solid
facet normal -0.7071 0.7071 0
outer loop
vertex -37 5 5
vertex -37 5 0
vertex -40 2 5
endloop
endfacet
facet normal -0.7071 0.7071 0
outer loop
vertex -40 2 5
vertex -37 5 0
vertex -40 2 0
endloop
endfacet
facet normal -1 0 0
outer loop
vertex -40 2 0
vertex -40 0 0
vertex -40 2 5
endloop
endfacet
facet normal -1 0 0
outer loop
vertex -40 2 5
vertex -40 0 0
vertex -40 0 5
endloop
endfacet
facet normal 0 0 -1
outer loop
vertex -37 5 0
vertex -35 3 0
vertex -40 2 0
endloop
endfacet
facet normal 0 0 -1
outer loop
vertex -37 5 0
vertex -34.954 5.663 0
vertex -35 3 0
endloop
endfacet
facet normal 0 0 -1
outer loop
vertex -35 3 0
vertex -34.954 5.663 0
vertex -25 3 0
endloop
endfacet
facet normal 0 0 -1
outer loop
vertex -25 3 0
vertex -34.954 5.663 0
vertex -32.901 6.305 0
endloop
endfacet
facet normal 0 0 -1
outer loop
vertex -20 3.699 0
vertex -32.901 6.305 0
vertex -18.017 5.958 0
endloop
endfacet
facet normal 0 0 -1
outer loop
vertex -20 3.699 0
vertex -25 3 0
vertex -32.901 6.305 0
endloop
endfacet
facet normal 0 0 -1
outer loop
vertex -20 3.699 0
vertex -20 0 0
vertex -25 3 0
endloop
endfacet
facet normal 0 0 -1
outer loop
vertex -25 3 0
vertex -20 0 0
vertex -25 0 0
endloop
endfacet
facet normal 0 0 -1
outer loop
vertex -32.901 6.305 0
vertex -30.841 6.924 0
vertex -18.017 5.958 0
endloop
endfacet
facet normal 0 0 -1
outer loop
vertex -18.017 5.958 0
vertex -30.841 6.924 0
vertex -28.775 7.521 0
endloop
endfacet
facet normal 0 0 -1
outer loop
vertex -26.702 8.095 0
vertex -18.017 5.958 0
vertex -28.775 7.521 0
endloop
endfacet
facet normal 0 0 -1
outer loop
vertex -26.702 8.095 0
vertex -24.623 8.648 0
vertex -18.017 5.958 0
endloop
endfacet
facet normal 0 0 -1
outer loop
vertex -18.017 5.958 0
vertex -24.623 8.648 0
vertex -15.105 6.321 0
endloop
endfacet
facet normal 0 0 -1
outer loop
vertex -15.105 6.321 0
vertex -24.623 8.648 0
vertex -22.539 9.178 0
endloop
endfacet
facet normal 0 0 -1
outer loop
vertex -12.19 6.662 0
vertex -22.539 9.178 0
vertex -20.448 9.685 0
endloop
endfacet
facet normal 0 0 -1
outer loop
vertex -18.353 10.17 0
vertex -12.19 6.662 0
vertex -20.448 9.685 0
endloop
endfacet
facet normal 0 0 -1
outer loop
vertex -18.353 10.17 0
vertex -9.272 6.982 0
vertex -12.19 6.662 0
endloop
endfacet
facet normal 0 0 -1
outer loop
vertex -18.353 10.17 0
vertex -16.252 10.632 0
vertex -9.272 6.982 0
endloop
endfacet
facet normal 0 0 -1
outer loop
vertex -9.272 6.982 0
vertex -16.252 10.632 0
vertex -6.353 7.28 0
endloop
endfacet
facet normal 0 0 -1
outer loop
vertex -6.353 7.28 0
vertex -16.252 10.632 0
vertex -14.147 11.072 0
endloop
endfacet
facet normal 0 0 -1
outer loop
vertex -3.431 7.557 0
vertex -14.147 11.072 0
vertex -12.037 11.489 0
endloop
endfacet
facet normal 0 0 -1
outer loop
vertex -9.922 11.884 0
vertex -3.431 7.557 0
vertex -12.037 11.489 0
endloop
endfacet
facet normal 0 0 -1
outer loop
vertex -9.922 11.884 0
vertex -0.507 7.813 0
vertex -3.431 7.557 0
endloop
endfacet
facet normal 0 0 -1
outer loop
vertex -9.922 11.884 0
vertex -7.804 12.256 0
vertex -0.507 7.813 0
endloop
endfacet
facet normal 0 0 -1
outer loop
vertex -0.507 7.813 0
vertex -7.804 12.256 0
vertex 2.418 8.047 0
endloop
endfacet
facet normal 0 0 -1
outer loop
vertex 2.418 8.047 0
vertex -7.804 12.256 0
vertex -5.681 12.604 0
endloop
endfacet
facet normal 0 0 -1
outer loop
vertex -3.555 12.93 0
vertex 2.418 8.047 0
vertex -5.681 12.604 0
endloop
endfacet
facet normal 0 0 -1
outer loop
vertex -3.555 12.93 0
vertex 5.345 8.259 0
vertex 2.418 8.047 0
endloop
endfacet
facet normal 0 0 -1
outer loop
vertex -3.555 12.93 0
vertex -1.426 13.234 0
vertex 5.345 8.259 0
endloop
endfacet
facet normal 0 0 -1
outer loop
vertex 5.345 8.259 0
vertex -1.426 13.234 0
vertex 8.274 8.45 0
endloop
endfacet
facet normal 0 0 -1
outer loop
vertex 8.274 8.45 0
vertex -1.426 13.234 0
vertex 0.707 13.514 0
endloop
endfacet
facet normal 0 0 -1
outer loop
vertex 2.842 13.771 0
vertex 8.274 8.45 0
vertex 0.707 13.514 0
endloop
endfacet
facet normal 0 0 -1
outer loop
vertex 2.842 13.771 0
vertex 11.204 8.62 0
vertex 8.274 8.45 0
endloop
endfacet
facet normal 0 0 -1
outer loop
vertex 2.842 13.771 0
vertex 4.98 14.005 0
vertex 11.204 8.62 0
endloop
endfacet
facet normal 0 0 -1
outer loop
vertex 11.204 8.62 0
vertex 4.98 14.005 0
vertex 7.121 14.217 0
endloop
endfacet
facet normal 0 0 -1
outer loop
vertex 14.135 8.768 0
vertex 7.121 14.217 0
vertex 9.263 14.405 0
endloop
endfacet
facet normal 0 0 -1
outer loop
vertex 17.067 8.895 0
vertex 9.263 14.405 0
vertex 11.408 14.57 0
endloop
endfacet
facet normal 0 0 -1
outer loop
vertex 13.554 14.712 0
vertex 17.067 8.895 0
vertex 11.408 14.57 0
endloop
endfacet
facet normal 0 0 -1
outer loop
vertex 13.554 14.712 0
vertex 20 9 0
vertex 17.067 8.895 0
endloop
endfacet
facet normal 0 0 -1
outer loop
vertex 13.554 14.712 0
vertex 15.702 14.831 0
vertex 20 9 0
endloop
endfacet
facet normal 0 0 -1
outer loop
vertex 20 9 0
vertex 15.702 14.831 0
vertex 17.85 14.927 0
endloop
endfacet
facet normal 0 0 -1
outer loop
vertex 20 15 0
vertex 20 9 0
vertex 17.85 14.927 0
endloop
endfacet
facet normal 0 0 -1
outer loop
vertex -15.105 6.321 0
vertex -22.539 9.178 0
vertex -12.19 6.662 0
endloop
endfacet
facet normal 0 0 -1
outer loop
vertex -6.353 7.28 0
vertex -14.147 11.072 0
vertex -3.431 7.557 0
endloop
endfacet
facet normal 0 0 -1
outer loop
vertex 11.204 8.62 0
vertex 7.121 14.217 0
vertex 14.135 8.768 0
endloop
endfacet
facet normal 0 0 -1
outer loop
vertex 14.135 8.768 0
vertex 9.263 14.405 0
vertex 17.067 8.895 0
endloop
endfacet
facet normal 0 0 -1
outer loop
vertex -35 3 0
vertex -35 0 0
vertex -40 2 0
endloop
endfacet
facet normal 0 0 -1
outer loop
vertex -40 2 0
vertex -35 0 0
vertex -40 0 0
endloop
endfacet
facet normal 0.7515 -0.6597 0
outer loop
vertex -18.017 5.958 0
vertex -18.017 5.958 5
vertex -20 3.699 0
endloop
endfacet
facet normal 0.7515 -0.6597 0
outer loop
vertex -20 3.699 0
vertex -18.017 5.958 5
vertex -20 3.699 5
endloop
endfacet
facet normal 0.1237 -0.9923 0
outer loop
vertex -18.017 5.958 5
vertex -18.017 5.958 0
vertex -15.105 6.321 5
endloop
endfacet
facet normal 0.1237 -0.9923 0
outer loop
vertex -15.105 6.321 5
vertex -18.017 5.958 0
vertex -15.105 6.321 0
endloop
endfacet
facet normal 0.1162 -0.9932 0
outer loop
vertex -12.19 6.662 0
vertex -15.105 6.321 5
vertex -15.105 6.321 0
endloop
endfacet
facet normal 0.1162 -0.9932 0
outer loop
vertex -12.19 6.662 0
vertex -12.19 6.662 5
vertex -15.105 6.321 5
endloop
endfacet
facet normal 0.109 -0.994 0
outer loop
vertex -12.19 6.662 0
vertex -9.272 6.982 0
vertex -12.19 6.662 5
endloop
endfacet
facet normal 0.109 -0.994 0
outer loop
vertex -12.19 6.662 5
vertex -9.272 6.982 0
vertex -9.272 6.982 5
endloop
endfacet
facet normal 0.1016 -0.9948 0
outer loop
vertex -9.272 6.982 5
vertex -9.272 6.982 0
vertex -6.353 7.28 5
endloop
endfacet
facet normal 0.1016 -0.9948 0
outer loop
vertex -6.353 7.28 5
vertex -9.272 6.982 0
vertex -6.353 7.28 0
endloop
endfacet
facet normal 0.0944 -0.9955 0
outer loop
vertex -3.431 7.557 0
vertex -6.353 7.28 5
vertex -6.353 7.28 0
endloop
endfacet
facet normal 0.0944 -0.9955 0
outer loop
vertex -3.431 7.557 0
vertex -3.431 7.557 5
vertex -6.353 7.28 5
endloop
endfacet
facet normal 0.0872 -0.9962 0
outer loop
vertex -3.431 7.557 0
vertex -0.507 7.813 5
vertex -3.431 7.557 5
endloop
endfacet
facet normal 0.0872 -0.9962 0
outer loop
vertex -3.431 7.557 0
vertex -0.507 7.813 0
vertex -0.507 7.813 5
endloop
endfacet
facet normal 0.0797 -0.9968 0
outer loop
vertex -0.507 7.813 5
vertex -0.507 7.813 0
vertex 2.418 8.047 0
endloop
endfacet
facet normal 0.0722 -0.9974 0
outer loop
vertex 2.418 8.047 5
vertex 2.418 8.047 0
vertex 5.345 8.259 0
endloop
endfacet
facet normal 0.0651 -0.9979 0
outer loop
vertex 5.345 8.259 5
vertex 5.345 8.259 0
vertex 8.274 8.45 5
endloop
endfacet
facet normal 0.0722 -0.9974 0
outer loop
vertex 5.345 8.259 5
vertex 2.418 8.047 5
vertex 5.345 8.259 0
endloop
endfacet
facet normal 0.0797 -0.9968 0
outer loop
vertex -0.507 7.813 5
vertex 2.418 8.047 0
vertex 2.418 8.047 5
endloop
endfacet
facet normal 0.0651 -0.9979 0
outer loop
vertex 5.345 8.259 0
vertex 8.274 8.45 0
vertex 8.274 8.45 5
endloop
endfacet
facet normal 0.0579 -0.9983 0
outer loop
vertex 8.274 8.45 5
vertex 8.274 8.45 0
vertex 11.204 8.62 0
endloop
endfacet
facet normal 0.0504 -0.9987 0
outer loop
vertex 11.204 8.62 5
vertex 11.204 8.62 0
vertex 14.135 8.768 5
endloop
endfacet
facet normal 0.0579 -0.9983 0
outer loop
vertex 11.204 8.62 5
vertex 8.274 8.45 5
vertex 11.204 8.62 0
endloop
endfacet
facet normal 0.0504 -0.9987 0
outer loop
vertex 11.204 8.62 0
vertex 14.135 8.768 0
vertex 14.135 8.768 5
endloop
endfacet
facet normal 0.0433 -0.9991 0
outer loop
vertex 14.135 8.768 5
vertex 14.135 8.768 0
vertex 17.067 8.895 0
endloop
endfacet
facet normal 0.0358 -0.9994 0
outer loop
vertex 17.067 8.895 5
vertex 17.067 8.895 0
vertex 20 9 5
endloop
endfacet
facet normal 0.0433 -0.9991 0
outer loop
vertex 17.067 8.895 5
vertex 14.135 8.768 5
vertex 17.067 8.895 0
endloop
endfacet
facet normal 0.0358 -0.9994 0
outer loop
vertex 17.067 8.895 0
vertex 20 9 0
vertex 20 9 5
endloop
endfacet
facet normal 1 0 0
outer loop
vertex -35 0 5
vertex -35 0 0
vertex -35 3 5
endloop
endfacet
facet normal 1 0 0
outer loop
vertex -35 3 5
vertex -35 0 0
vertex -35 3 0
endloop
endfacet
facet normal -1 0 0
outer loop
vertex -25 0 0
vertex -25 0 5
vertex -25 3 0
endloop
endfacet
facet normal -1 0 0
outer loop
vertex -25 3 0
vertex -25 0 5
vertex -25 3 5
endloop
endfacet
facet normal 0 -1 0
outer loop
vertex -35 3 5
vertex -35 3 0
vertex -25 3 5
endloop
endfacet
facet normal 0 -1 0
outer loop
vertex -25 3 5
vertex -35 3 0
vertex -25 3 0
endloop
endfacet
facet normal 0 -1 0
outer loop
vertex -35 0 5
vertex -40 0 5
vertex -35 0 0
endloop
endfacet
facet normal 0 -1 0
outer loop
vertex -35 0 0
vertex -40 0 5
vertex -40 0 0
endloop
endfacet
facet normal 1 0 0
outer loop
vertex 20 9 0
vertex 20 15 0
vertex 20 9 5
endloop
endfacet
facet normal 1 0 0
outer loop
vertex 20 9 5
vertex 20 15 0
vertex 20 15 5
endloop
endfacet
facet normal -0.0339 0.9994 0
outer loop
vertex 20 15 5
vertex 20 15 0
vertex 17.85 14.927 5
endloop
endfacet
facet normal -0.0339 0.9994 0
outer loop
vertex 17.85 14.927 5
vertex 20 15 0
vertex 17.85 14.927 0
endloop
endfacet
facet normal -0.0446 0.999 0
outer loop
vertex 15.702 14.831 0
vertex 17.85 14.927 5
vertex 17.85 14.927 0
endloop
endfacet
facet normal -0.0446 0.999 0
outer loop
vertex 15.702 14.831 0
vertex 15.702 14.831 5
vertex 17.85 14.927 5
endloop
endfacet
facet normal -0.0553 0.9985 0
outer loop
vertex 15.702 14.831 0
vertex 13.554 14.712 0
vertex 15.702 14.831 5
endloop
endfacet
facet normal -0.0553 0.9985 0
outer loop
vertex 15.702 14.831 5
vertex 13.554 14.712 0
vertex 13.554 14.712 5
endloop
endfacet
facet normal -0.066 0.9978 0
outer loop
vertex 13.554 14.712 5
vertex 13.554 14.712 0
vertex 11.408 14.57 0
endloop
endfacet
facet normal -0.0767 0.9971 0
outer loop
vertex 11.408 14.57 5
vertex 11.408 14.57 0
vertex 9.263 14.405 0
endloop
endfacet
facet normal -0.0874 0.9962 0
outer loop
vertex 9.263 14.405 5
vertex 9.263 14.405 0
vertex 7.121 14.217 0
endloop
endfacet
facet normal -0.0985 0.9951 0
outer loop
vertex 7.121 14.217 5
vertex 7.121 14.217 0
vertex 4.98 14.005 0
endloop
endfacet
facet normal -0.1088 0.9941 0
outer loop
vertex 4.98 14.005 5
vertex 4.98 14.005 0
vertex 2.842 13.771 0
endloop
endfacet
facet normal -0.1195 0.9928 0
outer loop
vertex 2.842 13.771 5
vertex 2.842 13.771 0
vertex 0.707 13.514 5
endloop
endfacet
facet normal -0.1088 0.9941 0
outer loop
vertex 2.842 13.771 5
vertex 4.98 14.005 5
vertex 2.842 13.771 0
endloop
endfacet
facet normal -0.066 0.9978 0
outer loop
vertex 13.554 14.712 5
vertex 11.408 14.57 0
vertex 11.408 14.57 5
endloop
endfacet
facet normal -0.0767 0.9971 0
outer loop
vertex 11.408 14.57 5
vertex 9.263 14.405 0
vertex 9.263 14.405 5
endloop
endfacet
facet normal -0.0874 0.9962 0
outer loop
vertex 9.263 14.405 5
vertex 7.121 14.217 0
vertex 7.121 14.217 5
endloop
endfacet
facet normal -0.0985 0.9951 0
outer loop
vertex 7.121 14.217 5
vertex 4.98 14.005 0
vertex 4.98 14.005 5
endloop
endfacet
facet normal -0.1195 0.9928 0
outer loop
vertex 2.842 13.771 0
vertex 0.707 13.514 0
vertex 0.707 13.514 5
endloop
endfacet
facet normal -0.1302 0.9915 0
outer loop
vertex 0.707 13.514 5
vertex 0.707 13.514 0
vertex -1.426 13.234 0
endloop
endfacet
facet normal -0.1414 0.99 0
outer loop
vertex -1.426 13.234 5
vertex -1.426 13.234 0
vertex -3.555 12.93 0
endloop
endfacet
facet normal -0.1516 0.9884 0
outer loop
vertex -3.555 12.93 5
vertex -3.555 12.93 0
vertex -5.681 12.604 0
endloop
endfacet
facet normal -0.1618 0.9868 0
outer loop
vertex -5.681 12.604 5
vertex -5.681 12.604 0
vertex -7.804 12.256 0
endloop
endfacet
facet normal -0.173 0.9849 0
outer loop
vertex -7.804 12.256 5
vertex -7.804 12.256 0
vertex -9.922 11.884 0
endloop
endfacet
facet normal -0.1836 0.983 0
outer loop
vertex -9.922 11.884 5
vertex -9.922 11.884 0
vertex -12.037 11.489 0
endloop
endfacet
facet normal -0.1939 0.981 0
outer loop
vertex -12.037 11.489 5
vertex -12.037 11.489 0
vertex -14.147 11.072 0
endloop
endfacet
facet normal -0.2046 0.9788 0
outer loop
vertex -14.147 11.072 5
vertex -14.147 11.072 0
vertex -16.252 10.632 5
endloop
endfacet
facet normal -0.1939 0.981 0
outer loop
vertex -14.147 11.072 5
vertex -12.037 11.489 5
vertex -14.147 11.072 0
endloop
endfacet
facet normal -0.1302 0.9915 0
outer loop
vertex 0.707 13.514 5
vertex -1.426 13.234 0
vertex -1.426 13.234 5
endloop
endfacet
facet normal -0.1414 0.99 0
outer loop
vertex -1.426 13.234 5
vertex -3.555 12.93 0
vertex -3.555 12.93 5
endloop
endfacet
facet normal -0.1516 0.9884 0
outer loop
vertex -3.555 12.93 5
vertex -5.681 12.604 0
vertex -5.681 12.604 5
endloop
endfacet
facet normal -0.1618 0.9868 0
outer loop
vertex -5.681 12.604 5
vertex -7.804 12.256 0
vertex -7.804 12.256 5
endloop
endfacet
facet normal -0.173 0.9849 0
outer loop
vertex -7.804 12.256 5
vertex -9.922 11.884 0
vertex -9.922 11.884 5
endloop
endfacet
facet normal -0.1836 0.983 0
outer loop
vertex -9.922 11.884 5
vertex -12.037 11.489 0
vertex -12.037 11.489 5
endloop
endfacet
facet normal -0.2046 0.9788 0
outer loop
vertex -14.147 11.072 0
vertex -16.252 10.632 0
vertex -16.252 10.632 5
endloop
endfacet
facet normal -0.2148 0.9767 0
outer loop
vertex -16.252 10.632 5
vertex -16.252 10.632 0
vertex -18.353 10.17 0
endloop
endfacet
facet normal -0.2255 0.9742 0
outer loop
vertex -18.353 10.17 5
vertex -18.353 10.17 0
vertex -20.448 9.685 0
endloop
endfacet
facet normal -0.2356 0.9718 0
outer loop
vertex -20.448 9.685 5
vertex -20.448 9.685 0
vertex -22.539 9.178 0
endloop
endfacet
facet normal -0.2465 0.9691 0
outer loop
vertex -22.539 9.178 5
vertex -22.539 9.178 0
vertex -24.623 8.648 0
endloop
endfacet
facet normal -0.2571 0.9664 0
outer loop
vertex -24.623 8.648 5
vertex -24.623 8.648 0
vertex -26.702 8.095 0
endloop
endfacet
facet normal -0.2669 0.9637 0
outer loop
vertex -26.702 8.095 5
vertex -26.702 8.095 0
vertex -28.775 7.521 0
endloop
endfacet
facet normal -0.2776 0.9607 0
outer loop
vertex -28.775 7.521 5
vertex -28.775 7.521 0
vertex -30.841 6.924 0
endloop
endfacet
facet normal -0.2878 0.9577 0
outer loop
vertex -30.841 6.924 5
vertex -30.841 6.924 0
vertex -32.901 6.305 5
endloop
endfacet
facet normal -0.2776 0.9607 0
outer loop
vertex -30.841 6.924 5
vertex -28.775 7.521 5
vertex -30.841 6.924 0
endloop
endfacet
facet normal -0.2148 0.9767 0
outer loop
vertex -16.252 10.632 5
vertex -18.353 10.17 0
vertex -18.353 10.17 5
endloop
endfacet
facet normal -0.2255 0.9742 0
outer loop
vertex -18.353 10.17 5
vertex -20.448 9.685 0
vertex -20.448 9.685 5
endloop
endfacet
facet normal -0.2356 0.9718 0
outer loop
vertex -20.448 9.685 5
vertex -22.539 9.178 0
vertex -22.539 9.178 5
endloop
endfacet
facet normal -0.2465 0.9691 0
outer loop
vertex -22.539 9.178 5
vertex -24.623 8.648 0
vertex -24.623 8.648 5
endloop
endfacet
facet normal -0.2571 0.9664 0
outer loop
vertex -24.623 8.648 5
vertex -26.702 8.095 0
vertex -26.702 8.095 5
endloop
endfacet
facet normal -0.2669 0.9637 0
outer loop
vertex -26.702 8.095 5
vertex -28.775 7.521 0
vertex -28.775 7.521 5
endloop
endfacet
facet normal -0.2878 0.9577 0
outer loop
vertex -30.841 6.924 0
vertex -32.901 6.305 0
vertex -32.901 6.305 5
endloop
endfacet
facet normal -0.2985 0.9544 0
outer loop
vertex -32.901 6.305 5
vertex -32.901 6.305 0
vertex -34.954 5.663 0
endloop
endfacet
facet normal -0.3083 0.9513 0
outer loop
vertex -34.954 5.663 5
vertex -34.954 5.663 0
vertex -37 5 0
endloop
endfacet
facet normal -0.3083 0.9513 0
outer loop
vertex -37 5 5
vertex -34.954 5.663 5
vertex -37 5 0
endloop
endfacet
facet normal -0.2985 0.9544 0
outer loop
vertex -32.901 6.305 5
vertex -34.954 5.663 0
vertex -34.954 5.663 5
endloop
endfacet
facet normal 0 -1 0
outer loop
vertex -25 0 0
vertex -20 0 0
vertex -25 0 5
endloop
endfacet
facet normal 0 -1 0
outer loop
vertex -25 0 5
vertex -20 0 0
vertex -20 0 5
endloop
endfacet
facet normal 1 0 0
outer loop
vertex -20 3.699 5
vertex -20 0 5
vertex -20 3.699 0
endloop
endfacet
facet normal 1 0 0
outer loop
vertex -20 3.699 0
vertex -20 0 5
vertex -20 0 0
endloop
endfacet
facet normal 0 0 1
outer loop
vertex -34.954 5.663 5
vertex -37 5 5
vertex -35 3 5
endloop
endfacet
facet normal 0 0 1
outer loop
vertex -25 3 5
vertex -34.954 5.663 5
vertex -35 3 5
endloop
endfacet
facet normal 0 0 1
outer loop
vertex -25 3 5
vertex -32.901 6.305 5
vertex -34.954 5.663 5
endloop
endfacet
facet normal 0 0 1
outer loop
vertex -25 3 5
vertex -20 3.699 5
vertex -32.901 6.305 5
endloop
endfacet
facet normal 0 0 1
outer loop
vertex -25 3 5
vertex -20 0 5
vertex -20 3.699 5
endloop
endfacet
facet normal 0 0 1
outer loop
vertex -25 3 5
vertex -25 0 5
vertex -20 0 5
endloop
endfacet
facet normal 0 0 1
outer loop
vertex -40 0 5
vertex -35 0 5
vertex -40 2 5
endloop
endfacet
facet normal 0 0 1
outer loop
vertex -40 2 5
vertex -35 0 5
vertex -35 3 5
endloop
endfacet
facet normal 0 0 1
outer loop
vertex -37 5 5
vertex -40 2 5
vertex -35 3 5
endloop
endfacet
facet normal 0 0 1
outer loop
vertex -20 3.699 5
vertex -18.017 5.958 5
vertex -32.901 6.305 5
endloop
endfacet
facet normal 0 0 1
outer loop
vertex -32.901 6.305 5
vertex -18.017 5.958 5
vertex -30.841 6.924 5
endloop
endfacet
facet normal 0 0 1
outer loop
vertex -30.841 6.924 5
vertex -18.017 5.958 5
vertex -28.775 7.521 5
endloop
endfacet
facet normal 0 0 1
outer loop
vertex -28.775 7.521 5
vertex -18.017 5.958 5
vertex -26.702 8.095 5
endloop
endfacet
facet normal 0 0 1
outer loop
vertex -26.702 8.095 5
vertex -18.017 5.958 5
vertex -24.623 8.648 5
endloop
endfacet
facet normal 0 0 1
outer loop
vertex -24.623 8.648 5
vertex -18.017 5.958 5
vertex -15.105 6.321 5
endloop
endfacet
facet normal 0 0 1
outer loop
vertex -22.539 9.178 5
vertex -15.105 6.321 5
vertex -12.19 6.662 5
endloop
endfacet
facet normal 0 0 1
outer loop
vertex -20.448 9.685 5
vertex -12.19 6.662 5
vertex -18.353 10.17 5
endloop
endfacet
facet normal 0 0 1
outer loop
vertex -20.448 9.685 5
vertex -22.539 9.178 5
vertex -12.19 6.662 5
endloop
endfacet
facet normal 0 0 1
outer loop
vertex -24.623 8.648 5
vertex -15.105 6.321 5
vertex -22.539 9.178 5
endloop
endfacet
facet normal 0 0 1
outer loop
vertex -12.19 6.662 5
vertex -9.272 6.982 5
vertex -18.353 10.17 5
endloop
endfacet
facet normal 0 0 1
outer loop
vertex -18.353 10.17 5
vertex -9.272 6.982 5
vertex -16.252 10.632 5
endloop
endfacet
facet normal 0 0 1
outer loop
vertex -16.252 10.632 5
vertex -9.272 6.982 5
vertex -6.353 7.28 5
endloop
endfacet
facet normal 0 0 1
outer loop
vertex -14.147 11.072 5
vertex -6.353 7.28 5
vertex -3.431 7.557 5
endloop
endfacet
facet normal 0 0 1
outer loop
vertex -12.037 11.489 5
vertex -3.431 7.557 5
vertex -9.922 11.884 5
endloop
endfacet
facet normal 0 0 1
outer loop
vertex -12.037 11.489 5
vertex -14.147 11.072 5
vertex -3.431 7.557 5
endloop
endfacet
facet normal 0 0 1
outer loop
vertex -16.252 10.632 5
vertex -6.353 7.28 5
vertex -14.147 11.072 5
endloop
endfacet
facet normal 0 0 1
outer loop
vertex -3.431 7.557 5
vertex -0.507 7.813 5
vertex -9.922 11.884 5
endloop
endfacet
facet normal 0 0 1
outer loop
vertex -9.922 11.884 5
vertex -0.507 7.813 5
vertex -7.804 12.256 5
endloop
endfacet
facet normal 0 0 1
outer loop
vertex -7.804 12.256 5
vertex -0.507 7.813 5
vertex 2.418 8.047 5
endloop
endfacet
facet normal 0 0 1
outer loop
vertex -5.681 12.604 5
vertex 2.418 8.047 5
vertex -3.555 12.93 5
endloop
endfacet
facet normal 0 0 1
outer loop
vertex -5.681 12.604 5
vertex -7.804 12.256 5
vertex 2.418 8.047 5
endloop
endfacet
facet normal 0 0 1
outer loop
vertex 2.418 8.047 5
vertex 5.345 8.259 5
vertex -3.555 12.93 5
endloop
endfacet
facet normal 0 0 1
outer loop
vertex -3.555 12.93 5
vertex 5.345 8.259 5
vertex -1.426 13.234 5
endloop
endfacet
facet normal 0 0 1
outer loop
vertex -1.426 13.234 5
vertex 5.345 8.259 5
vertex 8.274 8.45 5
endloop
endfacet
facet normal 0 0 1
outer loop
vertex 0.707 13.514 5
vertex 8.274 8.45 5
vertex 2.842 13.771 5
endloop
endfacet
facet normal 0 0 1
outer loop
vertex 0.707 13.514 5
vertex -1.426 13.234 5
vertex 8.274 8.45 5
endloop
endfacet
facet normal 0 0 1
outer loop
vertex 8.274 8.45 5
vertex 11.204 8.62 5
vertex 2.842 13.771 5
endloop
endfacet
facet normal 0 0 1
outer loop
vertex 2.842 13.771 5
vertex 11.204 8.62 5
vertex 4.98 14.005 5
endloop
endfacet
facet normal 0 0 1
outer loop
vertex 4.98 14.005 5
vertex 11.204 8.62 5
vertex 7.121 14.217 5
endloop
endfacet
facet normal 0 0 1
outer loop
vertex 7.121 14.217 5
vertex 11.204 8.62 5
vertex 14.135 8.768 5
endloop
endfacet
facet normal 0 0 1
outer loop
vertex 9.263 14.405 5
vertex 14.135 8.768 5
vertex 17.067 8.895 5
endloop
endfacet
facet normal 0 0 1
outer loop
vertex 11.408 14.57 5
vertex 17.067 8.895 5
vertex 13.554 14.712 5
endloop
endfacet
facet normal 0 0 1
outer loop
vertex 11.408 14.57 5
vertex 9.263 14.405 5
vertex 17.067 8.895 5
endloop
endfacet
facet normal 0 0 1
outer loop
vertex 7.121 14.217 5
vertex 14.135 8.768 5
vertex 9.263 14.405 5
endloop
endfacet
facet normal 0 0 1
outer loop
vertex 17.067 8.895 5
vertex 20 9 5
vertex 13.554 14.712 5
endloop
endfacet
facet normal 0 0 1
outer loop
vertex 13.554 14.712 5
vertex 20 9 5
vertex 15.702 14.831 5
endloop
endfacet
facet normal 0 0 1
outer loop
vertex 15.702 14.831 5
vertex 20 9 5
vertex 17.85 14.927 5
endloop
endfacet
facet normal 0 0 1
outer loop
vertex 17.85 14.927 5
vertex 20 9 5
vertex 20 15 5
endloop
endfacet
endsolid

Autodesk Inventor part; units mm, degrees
ref_plane "YZ Plane" through (0, 0, 0) normal (1, 0, 0) x (0, 1, 0)
ref_plane "XZ Plane" through (0, 0, 0) normal (0, 1, 0) x (-1, 0, 0)
ref_plane "XY Plane" through (0, 0, 0) normal (0, 0, 1) x (1, 0, 0)
sketch "Sketch1" plane through (0, 0, 0) normal (0, 0, 1) x (1, 0, 0)
  line L0 (-40, 0) -> (-20, 0)
  line L1 (-20, 0) -> (-20, 5)
  line L2 (-20, 5) -> (-40, 5)
  line L3 (-40, 5) -> (-40, 0)
  arc A0 (20, 15) -> (-37, 5) centre (25.6963, -184.9189) ccw
  arc A1 (20, 9) -> (-25, 5) centre (32.8594, -390.7932) ccw
  line L4 (-37, 5) -> (-25, 5)
  line L5 (20, 15) -> (20, 9)
  line L6 (-20, 5) -> (-20, 5.6987)
  point P0 (0, 0)
  dimension "d0" = 20
  dimension "d9" = 5
  dimension "d11" = 40
  dimension "d13" = 20
  dimension "d14" = 5
  dimension "d16" = 10
  dimension "d17" = 3
  dimension "d19" = 6
  dimension "d20" = 40
  dimension "d21" = 200
  dimension "d22" = 400
  dimension "d24" = 12
extrude "Extrusion3" add sketch "Sketch1" along normal blind 5
sketch "Sketch3" plane through (-40, 0, 0) normal (0, -1, 0) x (1, 0, 0)
  line L0 (0, 5) -> (20, 5) projected
  line L1 (5, 5) -> (15, 5)
  line L2 (15, 5) -> (15, 0)
  line L3 (15, 0) -> (5, 0)
  line L4 (5, 0) -> (5, 5)
  line L5 (0, 0) -> (0, 5) projected
  point P0 (40, 0)
  dimension "d27" = 10
  dimension "d28" = 5
extrude "Extrusion4" cut sketch "Sketch3" against normal blind 3
chamfer "Chamfer1" distance 2 angle 45 1 edges at (-20, 5.6987, 2.5)
chamfer "Chamfer2" distance 3 angle 45 1 edges at (-40, 5, 2.5)
properties part number "CameraArm"
